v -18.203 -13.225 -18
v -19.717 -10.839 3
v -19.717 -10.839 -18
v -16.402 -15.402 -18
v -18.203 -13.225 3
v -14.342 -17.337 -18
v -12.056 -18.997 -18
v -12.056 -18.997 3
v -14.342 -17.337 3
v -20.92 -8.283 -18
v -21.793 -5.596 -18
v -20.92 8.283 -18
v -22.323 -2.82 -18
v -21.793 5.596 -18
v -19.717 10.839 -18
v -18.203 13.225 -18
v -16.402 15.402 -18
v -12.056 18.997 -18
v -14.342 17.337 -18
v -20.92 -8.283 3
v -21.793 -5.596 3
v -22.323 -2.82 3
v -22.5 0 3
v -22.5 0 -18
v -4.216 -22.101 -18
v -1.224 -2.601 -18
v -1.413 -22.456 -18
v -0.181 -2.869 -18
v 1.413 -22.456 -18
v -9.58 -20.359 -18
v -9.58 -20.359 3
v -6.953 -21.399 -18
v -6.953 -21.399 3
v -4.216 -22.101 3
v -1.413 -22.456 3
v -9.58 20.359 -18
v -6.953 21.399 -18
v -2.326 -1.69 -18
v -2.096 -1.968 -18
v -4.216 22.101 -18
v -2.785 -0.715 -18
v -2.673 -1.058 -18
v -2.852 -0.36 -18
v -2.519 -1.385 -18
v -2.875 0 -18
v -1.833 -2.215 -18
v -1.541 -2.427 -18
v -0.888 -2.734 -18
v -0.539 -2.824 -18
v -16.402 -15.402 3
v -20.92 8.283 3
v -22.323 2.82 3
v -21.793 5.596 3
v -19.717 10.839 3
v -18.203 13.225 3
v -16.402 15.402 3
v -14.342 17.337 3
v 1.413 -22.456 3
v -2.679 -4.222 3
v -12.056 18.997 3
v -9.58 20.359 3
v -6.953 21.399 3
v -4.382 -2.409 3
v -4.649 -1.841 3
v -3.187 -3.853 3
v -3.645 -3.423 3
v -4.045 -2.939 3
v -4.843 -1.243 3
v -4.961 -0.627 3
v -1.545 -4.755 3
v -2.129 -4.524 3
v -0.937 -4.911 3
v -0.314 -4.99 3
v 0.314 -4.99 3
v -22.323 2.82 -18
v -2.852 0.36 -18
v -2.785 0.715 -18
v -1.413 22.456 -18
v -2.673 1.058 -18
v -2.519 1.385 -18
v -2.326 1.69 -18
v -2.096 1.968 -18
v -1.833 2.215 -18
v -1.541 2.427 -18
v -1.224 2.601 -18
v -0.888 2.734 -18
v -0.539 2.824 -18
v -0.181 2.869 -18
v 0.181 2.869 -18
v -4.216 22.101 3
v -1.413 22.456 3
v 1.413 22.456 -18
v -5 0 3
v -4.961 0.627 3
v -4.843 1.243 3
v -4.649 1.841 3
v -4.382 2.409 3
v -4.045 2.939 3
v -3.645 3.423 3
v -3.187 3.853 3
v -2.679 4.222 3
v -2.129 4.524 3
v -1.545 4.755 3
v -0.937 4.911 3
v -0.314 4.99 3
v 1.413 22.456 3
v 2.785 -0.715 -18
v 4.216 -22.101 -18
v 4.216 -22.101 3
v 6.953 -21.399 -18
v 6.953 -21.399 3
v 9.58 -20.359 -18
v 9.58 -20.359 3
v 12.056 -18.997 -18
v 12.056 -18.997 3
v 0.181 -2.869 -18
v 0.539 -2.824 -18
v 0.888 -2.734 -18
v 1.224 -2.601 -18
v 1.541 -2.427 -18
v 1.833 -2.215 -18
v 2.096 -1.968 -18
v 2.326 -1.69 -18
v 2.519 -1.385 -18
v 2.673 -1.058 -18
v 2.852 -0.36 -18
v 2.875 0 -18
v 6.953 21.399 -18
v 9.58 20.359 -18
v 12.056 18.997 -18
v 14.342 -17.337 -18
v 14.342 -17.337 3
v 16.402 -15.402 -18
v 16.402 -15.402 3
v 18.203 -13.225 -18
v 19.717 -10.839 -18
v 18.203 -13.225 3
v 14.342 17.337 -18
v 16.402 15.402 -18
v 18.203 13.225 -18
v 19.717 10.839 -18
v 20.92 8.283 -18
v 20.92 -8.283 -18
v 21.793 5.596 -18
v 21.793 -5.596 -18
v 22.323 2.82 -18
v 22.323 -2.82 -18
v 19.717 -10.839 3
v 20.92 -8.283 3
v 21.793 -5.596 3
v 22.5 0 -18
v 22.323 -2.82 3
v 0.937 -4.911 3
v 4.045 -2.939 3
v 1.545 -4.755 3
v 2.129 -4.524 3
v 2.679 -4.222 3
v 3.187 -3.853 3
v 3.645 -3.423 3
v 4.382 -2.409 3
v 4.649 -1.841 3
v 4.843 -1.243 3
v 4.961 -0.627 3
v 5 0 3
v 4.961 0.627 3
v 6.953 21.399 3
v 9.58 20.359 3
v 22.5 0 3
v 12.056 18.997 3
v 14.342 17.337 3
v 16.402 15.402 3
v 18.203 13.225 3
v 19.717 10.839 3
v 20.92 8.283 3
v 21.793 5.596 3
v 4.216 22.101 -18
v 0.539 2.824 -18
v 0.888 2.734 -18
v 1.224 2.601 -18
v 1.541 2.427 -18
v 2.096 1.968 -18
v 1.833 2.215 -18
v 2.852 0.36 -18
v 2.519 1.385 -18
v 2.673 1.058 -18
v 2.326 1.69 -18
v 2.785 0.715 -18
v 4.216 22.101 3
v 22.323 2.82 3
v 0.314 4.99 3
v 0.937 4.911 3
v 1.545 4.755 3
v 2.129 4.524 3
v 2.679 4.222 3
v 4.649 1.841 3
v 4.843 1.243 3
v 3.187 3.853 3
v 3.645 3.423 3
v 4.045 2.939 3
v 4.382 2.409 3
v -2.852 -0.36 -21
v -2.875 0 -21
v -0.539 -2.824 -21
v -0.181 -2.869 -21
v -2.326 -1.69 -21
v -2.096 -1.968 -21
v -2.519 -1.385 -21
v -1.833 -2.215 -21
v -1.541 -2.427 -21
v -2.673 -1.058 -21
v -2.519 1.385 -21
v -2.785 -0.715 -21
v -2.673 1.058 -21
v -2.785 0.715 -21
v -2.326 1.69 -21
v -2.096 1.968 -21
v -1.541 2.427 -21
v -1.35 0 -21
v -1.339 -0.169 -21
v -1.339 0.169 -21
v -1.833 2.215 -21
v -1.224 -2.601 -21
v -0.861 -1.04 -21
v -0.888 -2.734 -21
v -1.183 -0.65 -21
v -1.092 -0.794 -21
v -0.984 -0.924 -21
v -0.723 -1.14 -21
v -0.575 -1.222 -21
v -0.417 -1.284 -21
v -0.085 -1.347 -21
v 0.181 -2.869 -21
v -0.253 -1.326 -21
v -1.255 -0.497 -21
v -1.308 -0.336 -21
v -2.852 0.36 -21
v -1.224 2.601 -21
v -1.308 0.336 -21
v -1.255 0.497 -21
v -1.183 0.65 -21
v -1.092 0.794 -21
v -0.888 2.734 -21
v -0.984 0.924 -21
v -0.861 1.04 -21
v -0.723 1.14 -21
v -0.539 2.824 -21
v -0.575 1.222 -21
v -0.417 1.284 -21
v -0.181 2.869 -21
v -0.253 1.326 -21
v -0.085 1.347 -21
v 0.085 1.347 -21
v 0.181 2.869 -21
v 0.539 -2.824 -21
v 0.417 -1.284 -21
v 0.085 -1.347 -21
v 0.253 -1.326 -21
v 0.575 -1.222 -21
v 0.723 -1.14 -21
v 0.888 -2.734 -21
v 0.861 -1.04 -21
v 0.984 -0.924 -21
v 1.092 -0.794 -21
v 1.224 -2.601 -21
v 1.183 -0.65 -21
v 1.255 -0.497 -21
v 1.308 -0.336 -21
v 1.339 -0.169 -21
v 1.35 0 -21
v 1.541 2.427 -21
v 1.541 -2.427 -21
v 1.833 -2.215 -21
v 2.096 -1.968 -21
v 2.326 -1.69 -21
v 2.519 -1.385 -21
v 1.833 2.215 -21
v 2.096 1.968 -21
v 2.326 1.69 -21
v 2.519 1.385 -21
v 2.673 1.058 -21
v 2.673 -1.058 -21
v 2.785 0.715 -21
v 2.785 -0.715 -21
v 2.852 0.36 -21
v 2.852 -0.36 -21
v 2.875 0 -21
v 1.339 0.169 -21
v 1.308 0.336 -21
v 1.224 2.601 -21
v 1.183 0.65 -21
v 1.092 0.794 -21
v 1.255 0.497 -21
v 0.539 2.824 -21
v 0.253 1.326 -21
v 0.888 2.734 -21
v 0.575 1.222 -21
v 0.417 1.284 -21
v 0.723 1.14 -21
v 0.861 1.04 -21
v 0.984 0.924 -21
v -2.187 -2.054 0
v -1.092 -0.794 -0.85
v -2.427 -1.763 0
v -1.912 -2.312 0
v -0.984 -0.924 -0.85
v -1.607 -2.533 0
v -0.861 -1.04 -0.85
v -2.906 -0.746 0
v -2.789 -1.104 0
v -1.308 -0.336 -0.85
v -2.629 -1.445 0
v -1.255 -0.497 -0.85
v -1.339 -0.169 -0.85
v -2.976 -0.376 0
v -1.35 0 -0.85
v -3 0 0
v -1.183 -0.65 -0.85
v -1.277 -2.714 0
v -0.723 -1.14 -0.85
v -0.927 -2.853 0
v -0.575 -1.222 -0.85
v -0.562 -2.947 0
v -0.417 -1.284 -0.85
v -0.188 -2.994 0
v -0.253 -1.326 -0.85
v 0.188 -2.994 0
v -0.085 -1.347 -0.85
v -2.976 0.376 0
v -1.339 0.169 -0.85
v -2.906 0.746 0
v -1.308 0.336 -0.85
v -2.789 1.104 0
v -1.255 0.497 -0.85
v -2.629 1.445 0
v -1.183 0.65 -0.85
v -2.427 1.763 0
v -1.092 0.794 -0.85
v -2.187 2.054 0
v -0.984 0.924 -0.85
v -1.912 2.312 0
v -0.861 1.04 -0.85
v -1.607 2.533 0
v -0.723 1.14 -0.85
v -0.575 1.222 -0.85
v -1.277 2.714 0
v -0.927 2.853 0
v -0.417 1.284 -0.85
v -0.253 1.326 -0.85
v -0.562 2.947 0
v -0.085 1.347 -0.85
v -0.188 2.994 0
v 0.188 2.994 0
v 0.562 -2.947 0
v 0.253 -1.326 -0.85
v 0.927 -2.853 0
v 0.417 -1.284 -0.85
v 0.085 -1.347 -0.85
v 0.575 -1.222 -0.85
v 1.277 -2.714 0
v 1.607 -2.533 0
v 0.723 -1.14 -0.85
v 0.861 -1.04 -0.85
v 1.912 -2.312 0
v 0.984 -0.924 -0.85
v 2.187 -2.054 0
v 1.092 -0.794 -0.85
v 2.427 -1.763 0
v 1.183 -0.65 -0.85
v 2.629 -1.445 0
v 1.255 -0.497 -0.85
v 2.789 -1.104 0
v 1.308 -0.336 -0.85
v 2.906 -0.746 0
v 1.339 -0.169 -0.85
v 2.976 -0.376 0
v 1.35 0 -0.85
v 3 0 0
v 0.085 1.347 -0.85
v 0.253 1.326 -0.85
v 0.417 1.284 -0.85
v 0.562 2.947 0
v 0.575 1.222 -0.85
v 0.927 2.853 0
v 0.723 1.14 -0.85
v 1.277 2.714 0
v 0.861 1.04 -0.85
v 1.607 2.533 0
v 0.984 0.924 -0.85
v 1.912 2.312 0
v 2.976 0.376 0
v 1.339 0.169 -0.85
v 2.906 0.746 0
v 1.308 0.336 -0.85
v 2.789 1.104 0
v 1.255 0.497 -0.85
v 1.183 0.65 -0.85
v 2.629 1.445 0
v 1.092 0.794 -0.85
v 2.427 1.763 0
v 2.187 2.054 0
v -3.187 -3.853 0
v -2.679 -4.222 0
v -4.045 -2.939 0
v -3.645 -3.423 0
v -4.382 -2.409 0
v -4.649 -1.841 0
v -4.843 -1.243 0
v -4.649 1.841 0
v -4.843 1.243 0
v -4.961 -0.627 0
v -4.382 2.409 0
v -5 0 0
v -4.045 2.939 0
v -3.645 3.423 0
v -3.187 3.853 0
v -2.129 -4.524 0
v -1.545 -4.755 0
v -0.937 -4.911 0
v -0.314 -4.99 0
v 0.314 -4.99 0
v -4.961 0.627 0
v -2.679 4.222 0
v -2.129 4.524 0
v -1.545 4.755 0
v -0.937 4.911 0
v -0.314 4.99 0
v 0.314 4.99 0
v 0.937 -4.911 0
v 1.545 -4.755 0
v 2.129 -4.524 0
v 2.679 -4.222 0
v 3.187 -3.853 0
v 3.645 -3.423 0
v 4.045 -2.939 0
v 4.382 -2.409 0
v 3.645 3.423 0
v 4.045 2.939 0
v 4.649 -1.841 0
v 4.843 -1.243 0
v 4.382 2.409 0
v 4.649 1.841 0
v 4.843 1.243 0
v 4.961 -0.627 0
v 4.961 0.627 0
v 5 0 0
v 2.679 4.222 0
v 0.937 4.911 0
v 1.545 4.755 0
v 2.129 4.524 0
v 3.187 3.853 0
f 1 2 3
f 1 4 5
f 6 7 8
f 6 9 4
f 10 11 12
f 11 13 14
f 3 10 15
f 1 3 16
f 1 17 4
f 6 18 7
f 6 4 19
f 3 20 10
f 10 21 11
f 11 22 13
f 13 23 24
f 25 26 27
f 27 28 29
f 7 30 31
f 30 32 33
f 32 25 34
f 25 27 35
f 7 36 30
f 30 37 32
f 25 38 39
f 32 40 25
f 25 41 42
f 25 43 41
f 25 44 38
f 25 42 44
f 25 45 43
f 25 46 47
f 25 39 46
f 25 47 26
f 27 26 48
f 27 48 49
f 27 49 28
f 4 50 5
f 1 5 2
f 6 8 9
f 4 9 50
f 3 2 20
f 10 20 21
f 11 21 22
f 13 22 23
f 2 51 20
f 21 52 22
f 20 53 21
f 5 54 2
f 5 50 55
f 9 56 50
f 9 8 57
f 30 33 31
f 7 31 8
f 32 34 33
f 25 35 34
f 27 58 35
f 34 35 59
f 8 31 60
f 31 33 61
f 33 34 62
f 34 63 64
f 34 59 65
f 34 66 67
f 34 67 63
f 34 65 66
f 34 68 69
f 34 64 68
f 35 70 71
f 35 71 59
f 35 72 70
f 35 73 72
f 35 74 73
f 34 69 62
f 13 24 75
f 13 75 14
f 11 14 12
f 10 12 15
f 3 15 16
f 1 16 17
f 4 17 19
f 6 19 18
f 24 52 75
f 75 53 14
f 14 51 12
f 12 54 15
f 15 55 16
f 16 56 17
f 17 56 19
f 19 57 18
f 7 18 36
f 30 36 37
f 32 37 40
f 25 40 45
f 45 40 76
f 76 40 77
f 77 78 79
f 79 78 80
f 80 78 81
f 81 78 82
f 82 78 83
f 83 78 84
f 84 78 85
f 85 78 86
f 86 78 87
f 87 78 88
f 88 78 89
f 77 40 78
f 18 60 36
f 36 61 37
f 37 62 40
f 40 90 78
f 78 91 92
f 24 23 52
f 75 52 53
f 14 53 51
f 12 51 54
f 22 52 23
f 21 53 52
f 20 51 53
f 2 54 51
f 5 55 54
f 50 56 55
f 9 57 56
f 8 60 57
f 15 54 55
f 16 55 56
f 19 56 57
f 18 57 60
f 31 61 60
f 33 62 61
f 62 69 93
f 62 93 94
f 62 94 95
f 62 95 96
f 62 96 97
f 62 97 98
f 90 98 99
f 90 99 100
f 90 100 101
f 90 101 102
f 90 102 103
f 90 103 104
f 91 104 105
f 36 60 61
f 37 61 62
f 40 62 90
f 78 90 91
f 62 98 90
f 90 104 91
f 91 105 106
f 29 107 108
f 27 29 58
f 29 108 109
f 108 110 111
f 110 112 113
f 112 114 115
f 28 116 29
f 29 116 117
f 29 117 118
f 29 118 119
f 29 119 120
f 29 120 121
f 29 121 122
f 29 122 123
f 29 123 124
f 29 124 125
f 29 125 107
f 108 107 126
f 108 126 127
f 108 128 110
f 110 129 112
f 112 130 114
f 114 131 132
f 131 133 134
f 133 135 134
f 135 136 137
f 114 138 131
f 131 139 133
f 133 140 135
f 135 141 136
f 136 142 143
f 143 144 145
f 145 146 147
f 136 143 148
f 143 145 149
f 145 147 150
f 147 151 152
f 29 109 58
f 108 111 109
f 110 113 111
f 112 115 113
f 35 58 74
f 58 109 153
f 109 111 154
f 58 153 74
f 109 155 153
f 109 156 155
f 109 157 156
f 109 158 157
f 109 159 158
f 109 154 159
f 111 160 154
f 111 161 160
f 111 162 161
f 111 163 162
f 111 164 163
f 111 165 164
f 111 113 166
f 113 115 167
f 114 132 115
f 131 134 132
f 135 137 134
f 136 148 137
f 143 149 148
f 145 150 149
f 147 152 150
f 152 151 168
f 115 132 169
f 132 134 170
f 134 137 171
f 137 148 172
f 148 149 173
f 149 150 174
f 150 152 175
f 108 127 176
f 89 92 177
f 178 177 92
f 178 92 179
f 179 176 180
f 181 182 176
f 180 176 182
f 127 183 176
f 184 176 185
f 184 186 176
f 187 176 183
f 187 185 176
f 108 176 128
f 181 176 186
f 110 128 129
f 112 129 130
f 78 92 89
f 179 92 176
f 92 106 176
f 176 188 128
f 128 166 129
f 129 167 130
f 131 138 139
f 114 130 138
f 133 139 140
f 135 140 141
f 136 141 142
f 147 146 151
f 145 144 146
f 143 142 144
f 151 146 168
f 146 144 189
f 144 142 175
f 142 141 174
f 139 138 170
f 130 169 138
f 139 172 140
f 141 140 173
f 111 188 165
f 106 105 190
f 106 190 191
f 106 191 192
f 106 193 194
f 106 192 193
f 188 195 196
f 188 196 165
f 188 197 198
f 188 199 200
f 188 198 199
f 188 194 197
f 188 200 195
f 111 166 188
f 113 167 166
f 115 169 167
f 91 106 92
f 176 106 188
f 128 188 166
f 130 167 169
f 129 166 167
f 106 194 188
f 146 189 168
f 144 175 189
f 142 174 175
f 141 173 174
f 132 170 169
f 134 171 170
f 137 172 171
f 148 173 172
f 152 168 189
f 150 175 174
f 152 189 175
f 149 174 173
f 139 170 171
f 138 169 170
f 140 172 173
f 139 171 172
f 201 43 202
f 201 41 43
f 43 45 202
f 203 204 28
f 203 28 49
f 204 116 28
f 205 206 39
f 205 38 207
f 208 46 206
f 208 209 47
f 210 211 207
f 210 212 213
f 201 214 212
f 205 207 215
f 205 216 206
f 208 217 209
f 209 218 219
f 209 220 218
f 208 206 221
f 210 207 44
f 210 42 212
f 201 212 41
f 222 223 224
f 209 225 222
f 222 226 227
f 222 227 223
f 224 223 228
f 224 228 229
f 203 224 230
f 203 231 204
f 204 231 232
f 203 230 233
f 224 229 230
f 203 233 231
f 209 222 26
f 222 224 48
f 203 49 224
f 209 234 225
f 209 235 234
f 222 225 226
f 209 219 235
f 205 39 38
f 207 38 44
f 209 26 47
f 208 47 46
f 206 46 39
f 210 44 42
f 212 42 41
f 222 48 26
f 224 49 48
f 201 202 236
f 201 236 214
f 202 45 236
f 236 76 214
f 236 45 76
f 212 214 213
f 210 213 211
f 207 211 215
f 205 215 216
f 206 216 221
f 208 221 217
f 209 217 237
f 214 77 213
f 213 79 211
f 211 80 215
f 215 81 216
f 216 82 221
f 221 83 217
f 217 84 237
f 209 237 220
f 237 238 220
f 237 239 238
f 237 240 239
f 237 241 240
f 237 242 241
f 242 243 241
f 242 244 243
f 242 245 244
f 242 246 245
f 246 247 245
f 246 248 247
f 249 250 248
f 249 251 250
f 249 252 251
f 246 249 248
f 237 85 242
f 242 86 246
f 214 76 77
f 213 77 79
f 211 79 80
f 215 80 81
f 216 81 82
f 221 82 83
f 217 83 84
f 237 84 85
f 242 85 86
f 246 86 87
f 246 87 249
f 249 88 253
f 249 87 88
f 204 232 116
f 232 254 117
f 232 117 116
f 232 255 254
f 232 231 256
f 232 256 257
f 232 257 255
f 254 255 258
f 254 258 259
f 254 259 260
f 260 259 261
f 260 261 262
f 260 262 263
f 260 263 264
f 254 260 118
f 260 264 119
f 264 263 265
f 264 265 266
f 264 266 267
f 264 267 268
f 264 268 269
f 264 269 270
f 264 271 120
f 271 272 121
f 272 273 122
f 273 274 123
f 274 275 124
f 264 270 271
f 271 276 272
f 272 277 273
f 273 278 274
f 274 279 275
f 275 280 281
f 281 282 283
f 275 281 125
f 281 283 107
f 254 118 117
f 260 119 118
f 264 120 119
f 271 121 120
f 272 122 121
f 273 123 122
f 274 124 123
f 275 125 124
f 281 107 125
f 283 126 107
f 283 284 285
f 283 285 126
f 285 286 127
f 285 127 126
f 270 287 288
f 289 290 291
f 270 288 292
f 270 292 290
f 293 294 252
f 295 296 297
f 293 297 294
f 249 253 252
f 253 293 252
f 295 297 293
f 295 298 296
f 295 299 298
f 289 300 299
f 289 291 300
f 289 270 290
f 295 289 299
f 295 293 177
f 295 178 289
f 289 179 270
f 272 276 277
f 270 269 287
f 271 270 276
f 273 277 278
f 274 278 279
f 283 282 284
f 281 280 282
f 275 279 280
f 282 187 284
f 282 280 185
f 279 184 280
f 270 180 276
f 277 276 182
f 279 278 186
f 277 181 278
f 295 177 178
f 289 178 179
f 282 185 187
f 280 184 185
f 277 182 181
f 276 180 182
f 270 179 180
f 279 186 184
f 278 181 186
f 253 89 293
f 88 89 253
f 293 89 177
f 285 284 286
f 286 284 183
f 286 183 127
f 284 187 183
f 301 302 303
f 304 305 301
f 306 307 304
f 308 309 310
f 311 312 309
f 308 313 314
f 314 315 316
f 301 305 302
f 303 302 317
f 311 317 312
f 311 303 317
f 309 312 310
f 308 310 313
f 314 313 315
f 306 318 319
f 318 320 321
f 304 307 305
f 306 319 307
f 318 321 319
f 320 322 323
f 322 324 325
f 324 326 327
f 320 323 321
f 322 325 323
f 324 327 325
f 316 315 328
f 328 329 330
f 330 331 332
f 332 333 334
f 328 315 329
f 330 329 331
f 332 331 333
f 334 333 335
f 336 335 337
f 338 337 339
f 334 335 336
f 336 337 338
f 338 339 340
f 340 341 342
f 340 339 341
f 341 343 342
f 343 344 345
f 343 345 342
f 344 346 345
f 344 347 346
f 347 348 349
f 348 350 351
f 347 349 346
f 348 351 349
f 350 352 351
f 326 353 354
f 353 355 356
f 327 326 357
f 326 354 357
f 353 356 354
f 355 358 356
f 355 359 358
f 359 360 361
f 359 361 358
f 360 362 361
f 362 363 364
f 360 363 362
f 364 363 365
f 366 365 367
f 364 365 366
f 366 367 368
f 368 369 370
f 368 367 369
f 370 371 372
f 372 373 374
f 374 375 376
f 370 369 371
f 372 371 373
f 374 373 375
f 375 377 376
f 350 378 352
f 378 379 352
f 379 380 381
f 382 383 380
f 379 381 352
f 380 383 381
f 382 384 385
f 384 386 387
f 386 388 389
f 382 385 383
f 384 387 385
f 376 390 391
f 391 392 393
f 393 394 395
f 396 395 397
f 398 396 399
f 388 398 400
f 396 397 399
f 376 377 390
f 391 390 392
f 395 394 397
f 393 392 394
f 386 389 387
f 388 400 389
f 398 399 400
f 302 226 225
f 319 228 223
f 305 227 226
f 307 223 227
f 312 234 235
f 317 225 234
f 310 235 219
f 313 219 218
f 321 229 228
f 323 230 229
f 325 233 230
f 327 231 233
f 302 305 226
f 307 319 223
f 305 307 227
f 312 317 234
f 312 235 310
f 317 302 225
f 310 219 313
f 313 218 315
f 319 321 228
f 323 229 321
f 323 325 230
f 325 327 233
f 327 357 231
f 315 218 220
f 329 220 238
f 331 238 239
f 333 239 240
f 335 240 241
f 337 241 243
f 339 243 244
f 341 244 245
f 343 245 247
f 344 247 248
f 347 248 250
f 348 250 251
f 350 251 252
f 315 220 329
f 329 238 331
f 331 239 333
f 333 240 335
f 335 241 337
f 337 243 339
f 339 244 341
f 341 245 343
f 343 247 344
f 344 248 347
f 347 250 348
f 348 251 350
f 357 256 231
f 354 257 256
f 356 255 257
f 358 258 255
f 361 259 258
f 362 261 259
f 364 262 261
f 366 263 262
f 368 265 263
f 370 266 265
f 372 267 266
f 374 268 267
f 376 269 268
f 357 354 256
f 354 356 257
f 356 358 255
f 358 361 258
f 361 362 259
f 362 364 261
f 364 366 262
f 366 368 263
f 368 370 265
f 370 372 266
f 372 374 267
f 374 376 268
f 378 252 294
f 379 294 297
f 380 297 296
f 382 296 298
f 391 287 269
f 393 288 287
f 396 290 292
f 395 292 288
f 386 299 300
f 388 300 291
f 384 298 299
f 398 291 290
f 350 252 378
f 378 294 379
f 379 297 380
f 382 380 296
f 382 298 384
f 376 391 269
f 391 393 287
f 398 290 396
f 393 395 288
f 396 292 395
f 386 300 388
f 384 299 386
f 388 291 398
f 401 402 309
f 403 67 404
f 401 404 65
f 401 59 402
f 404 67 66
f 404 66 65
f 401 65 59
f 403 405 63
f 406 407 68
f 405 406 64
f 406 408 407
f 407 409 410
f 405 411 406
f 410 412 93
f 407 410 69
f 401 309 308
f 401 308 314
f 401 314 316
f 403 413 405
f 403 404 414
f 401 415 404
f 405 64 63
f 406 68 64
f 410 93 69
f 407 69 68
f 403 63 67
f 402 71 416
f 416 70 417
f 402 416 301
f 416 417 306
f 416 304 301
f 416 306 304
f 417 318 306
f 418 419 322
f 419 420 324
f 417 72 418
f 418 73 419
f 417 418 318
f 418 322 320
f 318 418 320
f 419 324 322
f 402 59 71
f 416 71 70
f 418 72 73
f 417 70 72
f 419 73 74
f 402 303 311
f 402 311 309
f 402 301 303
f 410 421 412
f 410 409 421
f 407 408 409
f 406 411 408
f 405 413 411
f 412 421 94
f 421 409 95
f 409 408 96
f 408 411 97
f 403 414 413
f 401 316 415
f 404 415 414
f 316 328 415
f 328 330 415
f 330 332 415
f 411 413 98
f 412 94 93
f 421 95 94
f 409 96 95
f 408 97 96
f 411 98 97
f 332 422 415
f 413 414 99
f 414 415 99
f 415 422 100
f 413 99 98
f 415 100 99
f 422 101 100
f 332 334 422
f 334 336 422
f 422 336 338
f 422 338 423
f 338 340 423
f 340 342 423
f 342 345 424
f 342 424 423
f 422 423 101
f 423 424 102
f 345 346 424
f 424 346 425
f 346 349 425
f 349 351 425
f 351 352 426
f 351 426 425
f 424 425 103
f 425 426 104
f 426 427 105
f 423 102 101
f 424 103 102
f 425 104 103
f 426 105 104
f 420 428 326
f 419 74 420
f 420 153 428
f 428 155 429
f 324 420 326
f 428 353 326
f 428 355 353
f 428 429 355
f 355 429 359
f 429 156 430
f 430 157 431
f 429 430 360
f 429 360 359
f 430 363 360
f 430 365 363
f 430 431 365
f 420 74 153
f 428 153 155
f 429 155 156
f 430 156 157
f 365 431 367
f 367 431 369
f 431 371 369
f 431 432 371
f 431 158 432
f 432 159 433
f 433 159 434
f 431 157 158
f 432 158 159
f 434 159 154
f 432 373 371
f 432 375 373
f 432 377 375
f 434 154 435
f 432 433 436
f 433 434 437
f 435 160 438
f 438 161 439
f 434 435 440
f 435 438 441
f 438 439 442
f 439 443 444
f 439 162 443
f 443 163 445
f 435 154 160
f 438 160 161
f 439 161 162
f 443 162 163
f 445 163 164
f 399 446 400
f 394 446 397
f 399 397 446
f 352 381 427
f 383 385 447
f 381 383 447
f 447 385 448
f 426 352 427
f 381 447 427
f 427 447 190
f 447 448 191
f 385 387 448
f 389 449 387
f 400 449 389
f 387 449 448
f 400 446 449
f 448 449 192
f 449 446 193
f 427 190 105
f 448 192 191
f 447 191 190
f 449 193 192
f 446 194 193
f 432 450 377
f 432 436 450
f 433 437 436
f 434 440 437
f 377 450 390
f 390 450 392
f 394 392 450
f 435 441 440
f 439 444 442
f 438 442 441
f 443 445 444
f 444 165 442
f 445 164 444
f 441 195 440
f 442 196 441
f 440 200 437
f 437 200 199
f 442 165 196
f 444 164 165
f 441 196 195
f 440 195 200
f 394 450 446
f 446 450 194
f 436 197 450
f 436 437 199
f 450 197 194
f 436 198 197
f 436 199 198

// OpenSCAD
$fn = 50;


difference() {
	union() {
		translate(v = [0, 0, -18.0000000000]) {
			cylinder(h = 21, r = 22.5000000000);
		}
		#translate(v = [0, 0, -21.0000000000]) {
			cylinder(h = 21, r = 2.8750000000);
		}
	}
	union() {
		translate(v = [0, 0, 0]) {
			rotate(a = [0, 0, 0]) {
				difference() {
					union() {
						translate(v = [0, 0, -21.0000000000]) {
							cylinder(h = 21, r = 1.0000000000);
						}
						translate(v = [0, 0, -0.8500000000]) {
							cylinder(h = 0.8500000000, r1 = 1.3500000000, r2 = 3.0000000000);
						}
						translate(v = [0, 0, -21.0000000000]) {
							cylinder(h = 21, r = 1.3500000000);
						}
						translate(v = [0, 0, -21.0000000000]) {
							cylinder(h = 21, r = 1.0000000000);
						}
					}
					union();
				}
			}
		}
		#cylinder(h = 3, r = 5.0000000000);
	}
}
